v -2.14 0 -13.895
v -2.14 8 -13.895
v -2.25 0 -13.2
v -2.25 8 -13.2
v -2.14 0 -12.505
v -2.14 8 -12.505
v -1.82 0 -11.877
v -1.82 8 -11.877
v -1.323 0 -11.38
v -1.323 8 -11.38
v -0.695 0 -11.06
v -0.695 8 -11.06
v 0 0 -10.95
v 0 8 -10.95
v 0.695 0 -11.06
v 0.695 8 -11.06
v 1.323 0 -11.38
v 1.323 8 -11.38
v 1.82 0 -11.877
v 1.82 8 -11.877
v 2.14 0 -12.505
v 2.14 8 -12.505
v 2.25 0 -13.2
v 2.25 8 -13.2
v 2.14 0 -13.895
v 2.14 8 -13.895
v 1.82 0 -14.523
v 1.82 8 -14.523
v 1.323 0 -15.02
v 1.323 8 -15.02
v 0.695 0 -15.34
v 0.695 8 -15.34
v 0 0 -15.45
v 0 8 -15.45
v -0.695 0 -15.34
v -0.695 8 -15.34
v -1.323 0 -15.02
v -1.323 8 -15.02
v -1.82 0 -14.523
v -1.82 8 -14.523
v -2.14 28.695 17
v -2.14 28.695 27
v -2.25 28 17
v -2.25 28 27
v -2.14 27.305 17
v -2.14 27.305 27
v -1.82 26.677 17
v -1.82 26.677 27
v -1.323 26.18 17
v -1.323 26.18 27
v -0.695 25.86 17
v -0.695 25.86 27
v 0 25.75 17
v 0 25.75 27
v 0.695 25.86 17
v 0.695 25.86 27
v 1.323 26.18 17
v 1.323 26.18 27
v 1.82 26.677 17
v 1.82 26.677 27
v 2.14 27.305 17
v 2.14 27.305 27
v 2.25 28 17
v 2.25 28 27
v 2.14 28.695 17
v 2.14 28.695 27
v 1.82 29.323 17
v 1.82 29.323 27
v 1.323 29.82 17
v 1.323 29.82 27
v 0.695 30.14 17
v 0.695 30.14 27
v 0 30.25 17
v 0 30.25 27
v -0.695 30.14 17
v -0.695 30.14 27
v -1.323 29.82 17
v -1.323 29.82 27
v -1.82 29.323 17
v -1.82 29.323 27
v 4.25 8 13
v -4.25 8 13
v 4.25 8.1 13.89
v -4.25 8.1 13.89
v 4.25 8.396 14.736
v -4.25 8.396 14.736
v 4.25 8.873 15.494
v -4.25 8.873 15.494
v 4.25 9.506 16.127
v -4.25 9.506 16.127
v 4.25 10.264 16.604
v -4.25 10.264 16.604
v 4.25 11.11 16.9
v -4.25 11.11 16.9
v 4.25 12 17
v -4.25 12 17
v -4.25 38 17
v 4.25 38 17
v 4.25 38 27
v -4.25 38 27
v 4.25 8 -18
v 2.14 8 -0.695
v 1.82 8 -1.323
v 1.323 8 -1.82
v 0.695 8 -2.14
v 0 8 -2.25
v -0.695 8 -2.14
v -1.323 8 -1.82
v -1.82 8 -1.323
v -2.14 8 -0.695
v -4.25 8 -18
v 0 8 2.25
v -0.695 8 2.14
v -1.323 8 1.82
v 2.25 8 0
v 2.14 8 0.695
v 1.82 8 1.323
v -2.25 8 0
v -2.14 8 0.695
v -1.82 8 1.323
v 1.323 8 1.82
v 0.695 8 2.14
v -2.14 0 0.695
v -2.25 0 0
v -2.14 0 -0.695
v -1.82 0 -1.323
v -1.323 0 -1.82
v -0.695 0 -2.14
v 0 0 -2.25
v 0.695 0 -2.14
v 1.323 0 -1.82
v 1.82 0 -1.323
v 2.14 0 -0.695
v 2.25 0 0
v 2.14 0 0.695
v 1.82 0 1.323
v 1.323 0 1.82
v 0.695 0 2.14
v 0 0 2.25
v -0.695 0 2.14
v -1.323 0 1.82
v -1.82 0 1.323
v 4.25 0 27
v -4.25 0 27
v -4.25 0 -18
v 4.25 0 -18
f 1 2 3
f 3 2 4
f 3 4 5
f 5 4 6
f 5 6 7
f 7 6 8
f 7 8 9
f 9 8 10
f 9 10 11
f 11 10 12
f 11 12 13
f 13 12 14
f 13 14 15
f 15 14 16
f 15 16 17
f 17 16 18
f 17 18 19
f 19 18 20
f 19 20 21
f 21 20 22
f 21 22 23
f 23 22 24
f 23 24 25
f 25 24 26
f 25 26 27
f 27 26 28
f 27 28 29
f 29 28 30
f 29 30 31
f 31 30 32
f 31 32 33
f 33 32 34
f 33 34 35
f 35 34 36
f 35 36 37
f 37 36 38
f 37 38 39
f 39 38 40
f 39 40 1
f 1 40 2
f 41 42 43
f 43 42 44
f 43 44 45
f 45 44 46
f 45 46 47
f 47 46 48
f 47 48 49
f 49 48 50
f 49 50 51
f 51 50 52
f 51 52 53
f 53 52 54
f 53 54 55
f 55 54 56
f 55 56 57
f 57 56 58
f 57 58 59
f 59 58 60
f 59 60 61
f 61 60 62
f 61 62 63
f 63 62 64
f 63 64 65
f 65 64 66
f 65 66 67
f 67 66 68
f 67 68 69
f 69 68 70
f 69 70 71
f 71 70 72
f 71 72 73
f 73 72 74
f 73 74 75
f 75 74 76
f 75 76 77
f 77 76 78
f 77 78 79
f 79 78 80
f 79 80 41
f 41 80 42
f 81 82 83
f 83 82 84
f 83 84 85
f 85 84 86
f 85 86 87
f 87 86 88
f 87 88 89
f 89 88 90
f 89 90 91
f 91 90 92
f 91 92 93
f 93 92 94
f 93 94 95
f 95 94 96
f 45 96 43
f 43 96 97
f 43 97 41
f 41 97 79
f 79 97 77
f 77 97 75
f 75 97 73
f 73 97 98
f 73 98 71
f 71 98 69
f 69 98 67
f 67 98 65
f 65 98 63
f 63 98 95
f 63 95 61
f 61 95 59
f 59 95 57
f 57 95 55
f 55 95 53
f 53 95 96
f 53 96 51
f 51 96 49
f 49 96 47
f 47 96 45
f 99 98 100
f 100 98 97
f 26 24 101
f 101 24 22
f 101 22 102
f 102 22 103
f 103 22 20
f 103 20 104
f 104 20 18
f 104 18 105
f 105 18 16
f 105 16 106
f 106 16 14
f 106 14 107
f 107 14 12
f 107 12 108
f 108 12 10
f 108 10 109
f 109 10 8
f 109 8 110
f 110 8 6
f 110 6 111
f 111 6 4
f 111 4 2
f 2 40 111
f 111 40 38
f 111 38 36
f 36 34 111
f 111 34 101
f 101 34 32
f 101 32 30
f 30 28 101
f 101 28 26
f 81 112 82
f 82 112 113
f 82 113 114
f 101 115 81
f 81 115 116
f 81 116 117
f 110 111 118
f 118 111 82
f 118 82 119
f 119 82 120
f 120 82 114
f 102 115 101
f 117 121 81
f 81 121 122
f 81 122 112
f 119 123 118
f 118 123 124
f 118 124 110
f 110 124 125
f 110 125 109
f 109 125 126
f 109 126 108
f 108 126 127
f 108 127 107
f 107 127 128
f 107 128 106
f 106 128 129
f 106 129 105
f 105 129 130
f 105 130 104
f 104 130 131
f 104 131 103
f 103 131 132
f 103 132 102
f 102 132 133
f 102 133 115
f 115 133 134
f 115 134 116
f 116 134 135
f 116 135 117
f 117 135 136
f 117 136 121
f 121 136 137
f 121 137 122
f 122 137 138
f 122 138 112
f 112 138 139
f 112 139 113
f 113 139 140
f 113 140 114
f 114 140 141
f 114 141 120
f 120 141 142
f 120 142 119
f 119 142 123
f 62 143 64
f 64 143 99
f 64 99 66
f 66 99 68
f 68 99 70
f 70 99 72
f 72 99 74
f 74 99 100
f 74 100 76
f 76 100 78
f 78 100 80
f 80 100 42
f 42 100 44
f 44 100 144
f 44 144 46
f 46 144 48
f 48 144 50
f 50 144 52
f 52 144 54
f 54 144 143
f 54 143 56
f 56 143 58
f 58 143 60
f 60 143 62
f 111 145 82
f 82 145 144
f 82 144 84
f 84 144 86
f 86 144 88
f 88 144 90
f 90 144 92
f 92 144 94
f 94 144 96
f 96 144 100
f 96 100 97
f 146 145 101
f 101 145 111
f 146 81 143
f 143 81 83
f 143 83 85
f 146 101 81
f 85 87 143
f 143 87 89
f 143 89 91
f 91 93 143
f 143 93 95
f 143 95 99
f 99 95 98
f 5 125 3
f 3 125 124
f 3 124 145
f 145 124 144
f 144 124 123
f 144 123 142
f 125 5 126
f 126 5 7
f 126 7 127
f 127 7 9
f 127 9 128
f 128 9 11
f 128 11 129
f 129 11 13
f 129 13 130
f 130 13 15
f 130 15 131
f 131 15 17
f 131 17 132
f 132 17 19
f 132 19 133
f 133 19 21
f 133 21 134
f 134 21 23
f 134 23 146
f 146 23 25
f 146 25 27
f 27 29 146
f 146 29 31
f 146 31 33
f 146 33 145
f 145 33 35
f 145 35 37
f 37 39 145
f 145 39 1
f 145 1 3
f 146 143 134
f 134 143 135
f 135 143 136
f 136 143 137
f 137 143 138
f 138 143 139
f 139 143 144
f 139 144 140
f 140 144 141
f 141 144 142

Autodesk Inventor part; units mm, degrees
ref_plane "YZ Plane" through (0, 0, 0) normal (1, 0, 0) x (0, 1, 0)
ref_plane "XZ Plane" through (0, 0, 0) normal (0, 1, 0) x (-1, 0, 0)
ref_plane "XY Plane" through (0, 0, 0) normal (0, 0, 1) x (1, 0, 0)
sketch "Sketch1" plane through (0, 0, 0) normal (0, 1, 0) x (-1, 0, 0)
  point P0 (0, 0)
sketch "Sketch2" plane through (0, 0, 0) normal (0, 1, 0) x (-1, 0, 0)
  point P0 (0, 0)
sketch "Sketch3" plane through (0, 0, 0) normal (0, 1, 0) x (-1, 0, 0)
  circle A0 centre (0, 0) radius 2.25
  line L0 (0, 0) -> (0, 27) construction
  line L1 (0, 27) -> (4.25, 27)
  line L2 (4.25, 27) -> (4.25, -18)
  line L3 (4.25, -18) -> (-4.25, -18)
  line L4 (-4.25, -18) -> (-4.25, 27)
  line L5 (-4.25, 27) -> (0, 27)
  dimension "d0" = 4.5
  dimension "d1" = 27
  dimension "d3" = 45
  dimension "d4" = 8.5
  dimension "d5" = 45
extrude "Extrusion1" add sketch "Sketch3" along normal blind 8
sketch "Sketch4" plane through (0, 8, 0) normal (0, 1, 0) x (1, 0, 0)
  line L0 (-4.25, 18) -> (-4.25, -27) projected
  line L1 (-4.25, -27) -> (-4.25, -17)
  line L2 (-4.25, -22) -> (-4.25, -17)
  line L3 (-4.25, -17) -> (4.25, -17)
  line L4 (4.25, -27) -> (4.25, 18) projected
  line L5 (4.25, -27) -> (4.25, -17)
  line L6 (-4.25, -27) -> (4.25, -27)
  point P0 (0, 0)
  dimension "d8" = 10
extrude "Extrusion2" add sketch "Sketch4" along normal blind 30
fillet "Fillet1" radius 4 1 edges at (0, 8, 17)
sketch "Sketch5" plane through (-4.25, 0, 27) normal (0, 0, 1) x (1, 0, 0)
  line L0 (0, 12) -> (0, 38) construction
  line L1 (16.0039, 8) -> (16.0039, 38) construction
  circle A0 centre (4.25, 28) radius 2.25
  line L2 (0, 38) -> (8.5, 38) construction
  line L3 (0, 38) -> (4.25, 38) construction
  line L4 (4.25, 38) -> (4.25, 28) construction
  point P0 (4.25, 0)
  dimension "d12" = 4.5
  dimension "d27" = 4.25
extrude "Extrusion3" cut sketch "Sketch5" against normal blind 20
sketch "Sketch7" plane through (0, 8, 0) normal (0, 1, 0) x (1, 0, 0)
  line L0 (0, 0) -> (0, 13.2) construction
  circle A0 centre (0, 13.2) radius 2.25
  dimension "d18" = 13.2
  dimension "d19" = 4.5
extrude "Extrusion5" cut sketch "Sketch7" against normal blind 19.4625
properties part number "Lconector"
